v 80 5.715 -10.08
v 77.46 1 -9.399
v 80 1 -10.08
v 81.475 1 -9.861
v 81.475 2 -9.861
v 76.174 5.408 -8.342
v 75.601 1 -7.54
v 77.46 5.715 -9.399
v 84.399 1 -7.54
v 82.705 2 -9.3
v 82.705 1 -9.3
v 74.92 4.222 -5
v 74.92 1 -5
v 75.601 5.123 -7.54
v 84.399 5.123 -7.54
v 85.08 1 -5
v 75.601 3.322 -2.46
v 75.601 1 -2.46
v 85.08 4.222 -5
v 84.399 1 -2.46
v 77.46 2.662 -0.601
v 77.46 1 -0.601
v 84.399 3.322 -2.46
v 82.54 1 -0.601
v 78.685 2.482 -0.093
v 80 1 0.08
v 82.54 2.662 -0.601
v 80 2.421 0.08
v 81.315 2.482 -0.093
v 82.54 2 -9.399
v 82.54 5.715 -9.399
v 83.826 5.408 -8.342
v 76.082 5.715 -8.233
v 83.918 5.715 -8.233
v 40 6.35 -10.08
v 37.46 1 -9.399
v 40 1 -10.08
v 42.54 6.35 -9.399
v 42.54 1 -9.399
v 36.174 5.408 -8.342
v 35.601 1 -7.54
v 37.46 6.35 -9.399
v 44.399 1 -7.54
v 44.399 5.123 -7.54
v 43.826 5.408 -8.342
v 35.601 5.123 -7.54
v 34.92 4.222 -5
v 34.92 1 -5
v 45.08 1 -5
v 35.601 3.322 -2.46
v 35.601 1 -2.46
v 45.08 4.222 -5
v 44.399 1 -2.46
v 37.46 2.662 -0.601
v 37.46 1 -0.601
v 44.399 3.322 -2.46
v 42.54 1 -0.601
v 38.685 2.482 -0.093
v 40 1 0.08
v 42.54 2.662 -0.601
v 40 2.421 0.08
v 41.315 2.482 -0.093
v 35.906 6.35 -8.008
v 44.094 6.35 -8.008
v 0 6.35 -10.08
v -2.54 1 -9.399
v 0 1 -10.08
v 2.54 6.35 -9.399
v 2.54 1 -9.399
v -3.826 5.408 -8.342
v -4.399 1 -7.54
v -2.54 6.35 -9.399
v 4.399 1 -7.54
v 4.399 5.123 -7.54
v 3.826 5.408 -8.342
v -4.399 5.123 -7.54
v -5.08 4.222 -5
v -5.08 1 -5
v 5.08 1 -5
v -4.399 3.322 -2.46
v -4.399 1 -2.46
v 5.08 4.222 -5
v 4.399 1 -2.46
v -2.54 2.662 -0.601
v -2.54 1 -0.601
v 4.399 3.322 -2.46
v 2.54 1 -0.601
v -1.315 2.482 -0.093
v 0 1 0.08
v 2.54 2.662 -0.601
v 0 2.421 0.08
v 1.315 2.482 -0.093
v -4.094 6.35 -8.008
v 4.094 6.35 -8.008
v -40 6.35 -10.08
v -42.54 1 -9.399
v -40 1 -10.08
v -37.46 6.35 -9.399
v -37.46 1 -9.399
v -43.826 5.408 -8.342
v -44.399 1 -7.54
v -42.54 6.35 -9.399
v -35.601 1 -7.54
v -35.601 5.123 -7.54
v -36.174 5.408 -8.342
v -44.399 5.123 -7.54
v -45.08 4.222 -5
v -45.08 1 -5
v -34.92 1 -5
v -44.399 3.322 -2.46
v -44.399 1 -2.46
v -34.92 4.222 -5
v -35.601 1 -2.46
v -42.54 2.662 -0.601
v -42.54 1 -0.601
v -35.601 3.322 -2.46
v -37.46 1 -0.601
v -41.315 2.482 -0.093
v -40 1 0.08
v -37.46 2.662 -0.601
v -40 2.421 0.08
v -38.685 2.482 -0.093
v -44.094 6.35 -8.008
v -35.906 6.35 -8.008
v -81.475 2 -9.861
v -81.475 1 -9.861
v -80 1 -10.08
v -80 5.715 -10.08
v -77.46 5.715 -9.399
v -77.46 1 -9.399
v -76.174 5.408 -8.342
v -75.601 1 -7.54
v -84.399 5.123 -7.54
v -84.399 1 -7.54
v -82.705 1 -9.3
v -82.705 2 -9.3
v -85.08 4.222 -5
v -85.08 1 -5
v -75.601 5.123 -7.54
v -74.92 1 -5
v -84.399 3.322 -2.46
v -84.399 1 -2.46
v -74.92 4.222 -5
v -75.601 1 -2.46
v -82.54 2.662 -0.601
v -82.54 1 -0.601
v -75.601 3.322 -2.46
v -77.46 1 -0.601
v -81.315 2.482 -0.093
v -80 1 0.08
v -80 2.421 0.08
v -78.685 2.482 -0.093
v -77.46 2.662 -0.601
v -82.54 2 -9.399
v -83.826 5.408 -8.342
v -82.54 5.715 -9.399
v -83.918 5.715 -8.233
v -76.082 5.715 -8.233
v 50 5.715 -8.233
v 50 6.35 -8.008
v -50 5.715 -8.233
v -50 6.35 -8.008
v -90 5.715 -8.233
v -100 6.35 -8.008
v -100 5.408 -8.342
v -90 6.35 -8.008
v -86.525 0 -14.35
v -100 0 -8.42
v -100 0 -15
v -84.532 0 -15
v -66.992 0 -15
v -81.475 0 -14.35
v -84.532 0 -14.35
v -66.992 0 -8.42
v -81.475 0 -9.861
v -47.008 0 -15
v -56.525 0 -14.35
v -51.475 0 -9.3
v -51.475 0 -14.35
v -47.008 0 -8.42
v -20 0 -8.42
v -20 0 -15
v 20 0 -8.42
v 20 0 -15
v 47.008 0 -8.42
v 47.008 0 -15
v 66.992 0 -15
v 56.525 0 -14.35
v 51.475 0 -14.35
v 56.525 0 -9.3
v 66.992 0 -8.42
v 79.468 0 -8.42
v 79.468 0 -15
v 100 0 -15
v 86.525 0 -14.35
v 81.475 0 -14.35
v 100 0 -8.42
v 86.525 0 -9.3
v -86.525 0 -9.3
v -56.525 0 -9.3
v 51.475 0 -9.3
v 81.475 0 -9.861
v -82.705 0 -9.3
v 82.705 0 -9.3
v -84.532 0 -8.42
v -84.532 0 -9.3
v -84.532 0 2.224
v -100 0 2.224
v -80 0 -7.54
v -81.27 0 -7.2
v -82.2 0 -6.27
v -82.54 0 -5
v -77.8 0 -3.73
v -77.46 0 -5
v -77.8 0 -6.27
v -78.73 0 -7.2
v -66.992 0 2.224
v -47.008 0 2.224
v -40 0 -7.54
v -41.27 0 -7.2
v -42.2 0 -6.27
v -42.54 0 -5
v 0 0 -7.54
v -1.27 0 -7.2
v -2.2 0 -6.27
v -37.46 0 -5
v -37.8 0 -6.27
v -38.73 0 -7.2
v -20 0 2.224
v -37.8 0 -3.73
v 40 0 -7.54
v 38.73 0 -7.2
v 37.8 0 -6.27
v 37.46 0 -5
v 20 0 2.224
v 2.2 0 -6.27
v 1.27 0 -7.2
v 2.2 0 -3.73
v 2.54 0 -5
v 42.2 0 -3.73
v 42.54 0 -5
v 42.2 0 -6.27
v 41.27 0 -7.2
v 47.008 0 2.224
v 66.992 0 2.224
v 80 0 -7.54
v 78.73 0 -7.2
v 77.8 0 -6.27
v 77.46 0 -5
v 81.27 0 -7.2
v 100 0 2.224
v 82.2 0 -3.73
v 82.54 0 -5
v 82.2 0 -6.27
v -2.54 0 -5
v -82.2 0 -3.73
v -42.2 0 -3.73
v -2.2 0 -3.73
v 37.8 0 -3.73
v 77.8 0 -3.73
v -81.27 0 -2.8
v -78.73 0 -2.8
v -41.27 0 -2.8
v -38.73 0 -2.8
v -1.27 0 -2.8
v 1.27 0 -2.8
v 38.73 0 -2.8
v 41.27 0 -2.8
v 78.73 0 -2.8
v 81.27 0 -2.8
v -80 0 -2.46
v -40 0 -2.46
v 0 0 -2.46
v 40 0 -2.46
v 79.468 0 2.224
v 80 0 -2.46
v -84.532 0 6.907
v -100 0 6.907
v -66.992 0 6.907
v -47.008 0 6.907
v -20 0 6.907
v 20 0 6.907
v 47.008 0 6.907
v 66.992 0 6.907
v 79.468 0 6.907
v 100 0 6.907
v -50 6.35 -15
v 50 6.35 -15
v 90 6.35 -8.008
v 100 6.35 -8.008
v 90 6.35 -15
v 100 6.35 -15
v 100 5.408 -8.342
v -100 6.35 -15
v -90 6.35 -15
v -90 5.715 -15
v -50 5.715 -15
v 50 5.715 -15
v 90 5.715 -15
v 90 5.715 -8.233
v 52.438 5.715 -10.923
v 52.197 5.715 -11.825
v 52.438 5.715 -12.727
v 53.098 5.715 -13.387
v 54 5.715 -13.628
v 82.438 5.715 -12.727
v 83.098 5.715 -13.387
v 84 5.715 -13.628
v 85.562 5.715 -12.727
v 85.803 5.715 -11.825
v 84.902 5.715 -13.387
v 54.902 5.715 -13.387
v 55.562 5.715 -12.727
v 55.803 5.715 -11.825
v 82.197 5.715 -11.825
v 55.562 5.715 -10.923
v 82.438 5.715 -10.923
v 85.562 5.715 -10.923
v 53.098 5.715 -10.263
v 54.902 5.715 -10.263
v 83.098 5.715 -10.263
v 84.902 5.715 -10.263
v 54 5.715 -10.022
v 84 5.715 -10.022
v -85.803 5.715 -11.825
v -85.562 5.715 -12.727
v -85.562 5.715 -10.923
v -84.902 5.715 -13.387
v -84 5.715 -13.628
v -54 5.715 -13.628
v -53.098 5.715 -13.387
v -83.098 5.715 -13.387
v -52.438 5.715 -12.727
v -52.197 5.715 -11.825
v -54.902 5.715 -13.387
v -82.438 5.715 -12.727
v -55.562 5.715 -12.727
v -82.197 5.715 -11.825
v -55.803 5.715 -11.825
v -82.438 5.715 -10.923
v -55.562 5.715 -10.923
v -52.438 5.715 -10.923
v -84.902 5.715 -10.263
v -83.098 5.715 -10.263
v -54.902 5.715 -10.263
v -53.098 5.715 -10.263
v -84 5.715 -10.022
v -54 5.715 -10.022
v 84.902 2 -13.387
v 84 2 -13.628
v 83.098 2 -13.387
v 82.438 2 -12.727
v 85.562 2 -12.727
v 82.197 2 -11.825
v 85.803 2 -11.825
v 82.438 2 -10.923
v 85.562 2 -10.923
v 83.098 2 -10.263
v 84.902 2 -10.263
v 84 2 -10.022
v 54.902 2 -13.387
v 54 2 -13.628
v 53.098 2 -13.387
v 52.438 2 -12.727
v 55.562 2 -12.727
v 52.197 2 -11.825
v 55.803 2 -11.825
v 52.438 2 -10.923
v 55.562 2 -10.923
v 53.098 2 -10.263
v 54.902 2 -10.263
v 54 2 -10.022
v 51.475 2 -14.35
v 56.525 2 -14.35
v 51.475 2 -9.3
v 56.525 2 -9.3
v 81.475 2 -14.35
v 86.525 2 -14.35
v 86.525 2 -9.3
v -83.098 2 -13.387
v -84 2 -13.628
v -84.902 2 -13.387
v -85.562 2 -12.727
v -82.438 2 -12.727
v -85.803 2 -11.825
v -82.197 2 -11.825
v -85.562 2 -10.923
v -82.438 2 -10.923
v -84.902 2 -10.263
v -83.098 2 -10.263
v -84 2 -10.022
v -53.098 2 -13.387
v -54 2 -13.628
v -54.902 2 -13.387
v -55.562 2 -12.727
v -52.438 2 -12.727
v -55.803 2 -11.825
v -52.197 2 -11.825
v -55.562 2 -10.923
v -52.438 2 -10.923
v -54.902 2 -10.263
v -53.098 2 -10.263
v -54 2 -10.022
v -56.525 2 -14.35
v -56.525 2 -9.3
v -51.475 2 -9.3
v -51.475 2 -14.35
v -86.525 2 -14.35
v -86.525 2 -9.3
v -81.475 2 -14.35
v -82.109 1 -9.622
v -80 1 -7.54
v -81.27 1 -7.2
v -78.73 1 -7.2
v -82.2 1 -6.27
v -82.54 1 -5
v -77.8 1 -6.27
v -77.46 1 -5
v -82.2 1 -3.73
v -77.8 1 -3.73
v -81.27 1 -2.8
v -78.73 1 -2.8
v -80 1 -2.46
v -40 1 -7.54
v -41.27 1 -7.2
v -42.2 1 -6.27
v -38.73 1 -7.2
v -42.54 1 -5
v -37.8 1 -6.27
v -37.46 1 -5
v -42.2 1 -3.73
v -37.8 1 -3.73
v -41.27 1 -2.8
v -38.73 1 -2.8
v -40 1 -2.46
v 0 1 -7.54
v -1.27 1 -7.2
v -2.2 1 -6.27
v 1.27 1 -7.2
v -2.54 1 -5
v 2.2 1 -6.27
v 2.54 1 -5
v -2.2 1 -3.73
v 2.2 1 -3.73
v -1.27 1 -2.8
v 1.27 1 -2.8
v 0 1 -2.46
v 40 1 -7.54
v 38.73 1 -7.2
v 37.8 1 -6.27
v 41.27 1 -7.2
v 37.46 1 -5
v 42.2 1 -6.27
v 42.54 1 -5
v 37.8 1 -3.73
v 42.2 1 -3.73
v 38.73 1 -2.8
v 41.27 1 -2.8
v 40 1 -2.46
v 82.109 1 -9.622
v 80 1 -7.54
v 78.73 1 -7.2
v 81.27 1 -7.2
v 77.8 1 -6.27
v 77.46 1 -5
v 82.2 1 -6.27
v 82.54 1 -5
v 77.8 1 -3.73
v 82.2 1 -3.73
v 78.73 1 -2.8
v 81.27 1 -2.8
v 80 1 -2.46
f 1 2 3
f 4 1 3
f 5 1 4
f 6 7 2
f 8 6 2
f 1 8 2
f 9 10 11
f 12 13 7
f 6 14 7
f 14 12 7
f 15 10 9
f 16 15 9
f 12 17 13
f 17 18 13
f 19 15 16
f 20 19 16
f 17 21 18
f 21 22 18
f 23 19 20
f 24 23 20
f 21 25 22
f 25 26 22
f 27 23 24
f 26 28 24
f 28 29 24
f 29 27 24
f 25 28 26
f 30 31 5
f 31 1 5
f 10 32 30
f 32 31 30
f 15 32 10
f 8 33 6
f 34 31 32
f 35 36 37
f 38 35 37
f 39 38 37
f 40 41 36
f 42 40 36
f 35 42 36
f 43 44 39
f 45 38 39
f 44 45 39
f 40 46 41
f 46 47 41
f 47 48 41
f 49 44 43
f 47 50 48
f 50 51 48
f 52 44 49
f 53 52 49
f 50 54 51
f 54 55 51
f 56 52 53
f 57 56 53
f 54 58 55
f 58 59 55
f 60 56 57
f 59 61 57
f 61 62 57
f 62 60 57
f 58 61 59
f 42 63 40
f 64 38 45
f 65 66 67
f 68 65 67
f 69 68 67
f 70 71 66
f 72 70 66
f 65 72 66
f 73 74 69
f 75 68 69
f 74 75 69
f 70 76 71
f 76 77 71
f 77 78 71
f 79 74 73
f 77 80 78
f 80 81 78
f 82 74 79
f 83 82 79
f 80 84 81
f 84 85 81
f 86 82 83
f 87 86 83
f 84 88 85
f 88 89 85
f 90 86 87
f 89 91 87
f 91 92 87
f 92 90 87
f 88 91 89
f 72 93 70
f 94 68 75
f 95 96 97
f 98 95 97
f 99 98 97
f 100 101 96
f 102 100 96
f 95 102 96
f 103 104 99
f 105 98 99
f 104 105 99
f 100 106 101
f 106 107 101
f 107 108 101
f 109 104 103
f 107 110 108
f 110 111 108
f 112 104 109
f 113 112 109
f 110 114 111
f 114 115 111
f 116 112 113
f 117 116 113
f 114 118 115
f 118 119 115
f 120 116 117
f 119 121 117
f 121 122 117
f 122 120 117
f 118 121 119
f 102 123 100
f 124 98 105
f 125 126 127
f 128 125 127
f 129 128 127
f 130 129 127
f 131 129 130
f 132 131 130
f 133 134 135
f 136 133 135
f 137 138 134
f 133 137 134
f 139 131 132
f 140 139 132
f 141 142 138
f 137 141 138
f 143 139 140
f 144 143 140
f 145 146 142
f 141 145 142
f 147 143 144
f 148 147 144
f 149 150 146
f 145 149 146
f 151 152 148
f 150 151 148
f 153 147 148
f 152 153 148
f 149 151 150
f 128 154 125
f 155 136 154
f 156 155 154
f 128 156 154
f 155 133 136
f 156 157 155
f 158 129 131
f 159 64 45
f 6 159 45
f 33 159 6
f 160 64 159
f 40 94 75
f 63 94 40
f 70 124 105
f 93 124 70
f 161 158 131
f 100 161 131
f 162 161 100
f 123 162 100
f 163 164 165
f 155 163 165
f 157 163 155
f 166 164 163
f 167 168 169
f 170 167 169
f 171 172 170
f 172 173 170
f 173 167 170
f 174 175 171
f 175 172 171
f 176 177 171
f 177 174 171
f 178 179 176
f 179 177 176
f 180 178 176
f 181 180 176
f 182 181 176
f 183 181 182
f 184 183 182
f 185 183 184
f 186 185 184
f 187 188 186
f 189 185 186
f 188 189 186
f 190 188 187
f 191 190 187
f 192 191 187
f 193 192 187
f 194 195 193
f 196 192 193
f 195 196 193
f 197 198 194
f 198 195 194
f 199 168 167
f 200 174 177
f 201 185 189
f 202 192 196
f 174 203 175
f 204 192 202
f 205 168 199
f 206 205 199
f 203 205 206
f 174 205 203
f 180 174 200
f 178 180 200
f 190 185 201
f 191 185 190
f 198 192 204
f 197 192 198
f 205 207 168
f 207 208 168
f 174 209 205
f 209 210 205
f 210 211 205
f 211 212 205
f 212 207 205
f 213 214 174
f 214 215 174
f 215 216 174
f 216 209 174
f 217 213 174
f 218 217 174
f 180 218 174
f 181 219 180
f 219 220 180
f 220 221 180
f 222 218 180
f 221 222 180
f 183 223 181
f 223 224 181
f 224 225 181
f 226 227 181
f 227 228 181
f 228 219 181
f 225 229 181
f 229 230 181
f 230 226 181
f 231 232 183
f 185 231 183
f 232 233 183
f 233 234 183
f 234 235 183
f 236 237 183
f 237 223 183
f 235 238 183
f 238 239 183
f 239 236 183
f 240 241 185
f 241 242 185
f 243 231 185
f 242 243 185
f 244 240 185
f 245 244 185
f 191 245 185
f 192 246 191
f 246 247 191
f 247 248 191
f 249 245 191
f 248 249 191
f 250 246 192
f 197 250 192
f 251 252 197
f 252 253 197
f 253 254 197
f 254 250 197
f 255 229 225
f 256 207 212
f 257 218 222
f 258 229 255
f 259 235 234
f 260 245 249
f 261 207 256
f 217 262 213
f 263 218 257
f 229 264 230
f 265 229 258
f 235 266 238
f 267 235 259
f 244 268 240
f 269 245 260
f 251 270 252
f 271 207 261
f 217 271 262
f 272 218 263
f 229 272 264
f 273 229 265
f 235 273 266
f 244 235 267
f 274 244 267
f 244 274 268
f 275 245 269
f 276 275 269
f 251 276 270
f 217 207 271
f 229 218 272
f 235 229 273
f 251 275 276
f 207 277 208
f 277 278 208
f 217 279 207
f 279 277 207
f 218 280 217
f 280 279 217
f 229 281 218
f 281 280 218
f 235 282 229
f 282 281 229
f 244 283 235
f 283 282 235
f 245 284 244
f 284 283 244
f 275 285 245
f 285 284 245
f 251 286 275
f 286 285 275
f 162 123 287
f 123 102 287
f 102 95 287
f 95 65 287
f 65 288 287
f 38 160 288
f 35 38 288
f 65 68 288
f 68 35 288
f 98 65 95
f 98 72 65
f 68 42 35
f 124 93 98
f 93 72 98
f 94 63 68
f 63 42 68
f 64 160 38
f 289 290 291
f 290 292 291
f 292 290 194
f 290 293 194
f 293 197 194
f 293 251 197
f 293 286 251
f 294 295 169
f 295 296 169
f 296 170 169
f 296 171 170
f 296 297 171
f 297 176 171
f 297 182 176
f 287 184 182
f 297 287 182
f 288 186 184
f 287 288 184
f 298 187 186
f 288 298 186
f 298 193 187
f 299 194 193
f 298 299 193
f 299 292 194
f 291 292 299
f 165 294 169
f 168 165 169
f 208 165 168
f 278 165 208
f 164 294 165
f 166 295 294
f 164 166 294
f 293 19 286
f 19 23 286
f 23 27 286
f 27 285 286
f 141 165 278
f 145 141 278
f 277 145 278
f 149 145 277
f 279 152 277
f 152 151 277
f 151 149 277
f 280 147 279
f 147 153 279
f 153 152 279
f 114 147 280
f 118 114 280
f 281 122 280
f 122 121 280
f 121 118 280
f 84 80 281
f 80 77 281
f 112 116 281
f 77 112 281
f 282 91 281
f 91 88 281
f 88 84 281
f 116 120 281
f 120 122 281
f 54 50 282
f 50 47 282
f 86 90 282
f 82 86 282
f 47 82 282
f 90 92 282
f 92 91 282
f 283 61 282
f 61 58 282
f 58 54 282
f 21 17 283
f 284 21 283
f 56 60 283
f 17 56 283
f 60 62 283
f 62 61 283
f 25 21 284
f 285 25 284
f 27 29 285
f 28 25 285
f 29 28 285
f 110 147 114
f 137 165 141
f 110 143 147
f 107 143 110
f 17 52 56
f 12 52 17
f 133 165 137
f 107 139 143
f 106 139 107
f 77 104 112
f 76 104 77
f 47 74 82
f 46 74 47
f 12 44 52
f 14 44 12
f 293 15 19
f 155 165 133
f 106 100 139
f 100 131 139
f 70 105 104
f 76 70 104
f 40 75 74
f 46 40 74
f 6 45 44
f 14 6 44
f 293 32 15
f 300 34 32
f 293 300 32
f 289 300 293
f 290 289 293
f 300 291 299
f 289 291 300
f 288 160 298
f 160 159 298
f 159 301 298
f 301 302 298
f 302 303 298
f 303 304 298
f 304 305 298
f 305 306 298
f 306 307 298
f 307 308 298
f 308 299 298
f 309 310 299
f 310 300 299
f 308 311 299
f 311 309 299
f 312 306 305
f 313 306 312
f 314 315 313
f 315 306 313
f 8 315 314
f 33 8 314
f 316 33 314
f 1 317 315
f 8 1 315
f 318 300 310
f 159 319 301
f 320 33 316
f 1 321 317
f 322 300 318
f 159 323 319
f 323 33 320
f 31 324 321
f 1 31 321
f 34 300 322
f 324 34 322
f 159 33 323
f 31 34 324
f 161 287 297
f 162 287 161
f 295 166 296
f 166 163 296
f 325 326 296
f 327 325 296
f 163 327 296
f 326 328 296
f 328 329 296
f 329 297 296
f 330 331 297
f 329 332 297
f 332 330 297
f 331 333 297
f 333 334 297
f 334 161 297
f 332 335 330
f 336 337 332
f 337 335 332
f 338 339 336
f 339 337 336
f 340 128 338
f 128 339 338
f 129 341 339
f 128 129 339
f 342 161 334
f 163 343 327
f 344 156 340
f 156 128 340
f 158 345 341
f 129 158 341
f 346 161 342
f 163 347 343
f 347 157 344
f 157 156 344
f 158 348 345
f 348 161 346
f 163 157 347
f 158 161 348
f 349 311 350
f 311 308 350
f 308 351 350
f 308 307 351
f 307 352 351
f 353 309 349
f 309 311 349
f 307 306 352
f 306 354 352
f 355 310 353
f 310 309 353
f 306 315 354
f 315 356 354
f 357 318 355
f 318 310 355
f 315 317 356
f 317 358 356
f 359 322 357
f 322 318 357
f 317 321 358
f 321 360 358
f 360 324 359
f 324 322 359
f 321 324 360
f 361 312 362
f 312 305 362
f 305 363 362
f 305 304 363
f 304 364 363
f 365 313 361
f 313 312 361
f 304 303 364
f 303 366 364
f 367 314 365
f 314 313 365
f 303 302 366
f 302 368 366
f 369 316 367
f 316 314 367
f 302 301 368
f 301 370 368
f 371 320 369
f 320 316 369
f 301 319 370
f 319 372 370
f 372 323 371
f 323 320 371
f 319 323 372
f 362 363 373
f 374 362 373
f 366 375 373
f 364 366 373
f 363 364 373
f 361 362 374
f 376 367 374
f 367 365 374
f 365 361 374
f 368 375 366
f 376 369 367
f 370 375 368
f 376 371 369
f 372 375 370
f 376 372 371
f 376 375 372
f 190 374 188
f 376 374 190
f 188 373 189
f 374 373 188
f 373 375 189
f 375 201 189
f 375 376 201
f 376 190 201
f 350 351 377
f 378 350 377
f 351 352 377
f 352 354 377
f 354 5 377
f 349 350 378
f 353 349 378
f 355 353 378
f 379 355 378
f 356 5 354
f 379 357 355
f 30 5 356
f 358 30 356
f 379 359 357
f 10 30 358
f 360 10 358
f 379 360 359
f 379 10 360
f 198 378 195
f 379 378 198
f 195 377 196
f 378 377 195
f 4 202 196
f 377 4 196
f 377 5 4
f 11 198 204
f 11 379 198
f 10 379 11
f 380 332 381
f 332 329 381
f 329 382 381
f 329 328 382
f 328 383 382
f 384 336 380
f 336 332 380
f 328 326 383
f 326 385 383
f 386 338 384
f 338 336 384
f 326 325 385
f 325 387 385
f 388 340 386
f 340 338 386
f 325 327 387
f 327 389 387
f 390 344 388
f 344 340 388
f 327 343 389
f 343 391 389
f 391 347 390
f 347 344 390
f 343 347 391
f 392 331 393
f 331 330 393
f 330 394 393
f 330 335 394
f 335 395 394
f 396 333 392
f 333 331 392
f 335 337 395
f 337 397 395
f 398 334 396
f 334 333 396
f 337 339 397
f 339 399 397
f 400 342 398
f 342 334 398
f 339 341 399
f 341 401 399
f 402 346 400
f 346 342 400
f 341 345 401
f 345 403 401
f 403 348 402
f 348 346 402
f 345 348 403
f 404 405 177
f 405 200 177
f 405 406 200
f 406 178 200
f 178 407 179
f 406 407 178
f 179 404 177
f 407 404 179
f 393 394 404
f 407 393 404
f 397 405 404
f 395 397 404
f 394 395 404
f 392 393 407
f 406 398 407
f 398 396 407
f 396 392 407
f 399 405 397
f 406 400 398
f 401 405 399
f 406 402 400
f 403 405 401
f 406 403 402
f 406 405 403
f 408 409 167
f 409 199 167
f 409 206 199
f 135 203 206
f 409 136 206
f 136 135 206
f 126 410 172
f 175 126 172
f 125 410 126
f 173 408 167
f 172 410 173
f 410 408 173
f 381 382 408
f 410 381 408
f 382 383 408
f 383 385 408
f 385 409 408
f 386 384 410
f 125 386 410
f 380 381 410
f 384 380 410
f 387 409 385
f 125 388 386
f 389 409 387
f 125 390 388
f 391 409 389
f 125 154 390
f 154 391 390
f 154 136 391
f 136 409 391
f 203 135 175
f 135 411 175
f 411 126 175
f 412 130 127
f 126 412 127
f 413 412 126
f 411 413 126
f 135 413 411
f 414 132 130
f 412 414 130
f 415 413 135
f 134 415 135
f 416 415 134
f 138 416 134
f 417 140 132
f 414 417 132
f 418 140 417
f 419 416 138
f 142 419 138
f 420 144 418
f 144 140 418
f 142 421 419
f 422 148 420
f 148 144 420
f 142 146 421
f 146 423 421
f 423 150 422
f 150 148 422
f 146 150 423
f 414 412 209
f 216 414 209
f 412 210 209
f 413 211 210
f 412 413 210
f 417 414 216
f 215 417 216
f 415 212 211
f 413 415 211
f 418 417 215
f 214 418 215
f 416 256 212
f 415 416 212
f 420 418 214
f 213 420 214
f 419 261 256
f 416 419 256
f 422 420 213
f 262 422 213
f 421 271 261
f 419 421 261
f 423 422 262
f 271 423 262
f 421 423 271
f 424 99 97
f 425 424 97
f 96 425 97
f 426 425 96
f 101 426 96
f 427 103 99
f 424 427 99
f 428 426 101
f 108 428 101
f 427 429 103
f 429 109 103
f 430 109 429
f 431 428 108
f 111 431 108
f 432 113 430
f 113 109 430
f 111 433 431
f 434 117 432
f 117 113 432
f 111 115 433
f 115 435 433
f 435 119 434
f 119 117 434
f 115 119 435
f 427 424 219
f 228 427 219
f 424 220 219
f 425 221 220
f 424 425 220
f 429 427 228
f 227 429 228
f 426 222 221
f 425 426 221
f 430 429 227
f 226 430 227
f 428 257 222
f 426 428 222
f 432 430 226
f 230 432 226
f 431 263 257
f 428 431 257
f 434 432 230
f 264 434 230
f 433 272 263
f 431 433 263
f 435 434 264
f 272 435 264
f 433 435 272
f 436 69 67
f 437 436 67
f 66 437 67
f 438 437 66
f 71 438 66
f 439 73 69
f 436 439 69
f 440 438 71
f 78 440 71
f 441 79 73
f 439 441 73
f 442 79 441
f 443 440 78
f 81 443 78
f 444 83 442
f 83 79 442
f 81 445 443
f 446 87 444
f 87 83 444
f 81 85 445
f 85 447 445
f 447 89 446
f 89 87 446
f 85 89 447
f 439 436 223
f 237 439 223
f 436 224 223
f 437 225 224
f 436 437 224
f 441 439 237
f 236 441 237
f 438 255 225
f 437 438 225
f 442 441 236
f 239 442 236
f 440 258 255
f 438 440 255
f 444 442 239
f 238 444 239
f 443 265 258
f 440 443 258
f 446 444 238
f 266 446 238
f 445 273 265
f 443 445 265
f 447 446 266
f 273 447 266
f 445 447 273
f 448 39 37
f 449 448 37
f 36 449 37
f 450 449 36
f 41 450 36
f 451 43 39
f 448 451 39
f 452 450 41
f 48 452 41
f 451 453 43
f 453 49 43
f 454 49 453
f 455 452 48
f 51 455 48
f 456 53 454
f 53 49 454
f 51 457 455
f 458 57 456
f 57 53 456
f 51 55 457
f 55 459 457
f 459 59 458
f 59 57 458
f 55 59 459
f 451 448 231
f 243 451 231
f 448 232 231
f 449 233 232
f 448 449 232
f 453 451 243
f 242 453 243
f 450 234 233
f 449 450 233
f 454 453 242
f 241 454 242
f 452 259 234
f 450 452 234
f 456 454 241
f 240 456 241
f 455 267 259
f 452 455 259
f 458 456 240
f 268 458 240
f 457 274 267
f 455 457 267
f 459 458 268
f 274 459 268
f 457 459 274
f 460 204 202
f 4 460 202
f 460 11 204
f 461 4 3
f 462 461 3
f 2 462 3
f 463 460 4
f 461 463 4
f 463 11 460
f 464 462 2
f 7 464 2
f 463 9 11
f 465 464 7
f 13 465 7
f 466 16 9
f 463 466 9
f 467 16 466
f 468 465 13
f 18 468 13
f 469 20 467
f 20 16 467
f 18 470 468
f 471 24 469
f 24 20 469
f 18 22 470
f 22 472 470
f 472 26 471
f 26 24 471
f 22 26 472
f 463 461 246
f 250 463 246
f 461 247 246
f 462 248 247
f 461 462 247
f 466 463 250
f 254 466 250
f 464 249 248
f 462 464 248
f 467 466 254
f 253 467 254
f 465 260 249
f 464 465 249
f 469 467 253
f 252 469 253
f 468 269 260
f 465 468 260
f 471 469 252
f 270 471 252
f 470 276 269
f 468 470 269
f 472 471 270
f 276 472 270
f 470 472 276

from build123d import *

# Parameters (mm, degrees)
SKETCH1_W            = 200
SKETCH1_H            = 30
BASE_DEPTH           = 6.35
WEDGECUT_REACH       = 202.662
SKETCH3_W            = 40
SKETCH3_H            = 8
HINGE_CUTOUT_DEPTH   = 0.635
HINGE_HOLE_CUT_REACH = 103.28
SKETCH4_R            = 1.8034
SKETCH5_W            = 5.05
SKETCH5_H            = 5.05
HINGE_NUT_CUT_DEPTH  = 2
SKETCH6_R            = 5.08
CUT_EXTRUDE1_DEPTH   = 102.317927831
SKETCH7_R            = 5.08
SKETCH7_R_2          = 2.54
BOSS_EXTRUDE1_DEPTH  = 1


with BuildPart() as part:
    # Sketch1 → Base (new body)
    with BuildSketch(Plane(origin=(0, 0, 0), x_dir=(1, 0, 0), z_dir=(0, 1, 0))):
        Rectangle(SKETCH1_W, SKETCH1_H)
    extrude(amount=BASE_DEPTH)

    # Sketch2 → WedgeCut (cut, up to next)
    with BuildSketch(Plane(origin=(100, 0, 0), x_dir=(0, 0, -1), z_dir=(1, 0, 0)), mode=Mode.PRIVATE) as wedgecut_sk1:
        Polygon((-15, 0), (-6.907470508, 0), (8.342084542, 5.407501552), (8.007874016, 6.35), (-15, 6.35), align=None)
    wedgecut_tool1 = extrude(wedgecut_sk1.sketch, amount=-WEDGECUT_REACH, mode=Mode.PRIVATE) & part.part
    add(wedgecut_tool1.solids().sort_by_distance((100, 3.70048, 5.888491))[0], mode=Mode.SUBTRACT)

    # Sketch3 → Hinge Cutout (cut)
    with BuildSketch(Plane(origin=(0, 6.35, 0), x_dir=(1, 0, 0), z_dir=(0, 1, 0))):
        with Locations((-69.999999934, 11)):
            Rectangle(SKETCH3_W, SKETCH3_H)
        with Locations((70, 11)):
            Rectangle(SKETCH3_W, SKETCH3_H)
    extrude(amount=-HINGE_CUTOUT_DEPTH, mode=Mode.SUBTRACT)

    # Sketch4 → Hinge Hole Cut (cut, up to next)
    with BuildSketch(Plane(origin=(0, 5.715, 0), x_dir=(1, 0, 0), z_dir=(0, 1, 0)), mode=Mode.PRIVATE) as hinge_hole_cut_sk1:
        with Locations(Location((54, 11.825, 0), (0, 0, 270))):
            Circle(SKETCH4_R)
    hinge_hole_cut_tool1 = extrude(hinge_hole_cut_sk1.sketch, amount=-HINGE_HOLE_CUT_REACH, mode=Mode.PRIVATE) & part.part
    # Sketch4 → Hinge Hole Cut (cut, up to next)
    with BuildSketch(Plane(origin=(0, 5.715, 0), x_dir=(1, 0, 0), z_dir=(0, 1, 0)), mode=Mode.PRIVATE) as hinge_hole_cut_sk2:
        with Locations(Location((84, 11.825, 0), (0, 0, 270))):
            Circle(SKETCH4_R)
    hinge_hole_cut_tool2 = extrude(hinge_hole_cut_sk2.sketch, amount=-HINGE_HOLE_CUT_REACH, mode=Mode.PRIVATE) & part.part
    hinge_hole_cut_1 = hinge_hole_cut_tool1.solids().sort_by_distance((54, 5.715, -11.825))[0]
    add(hinge_hole_cut_1, mode=Mode.SUBTRACT)
    hinge_hole_cut_2 = hinge_hole_cut_tool2.solids().sort_by_distance((84, 5.715, -11.825))[0]
    add(hinge_hole_cut_2, mode=Mode.SUBTRACT)
    hinge_hole_cut = hinge_hole_cut_1 + hinge_hole_cut_2  # Hinge Hole Cut as one shape, for the pattern or mirror that repeats it

    # Sketch5 → Hinge Nut Cut (cut)
    with BuildSketch(Plane.XZ):
        with Locations((54, -11.825)):
            Rectangle(SKETCH5_W, SKETCH5_H)
        with Locations((84, -11.825)):
            Rectangle(SKETCH5_W, SKETCH5_H)
    hinge_nut_cut = extrude(amount=-HINGE_NUT_CUT_DEPTH, mode=Mode.SUBTRACT)

    # Hinge Hole Mirror: Hinge Hole Cut, Hinge Nut Cut across plane
    add(hinge_hole_cut.mirror(Plane(origin=(0, 0, 0), x_dir=(0, 0, 1), z_dir=(1, 0, 0))), mode=Mode.SUBTRACT)
    add(hinge_nut_cut.mirror(Plane(origin=(0, 0, 0), x_dir=(0, 0, 1), z_dir=(1, 0, 0))), mode=Mode.SUBTRACT)

    # Sketch6 → Cut-Extrude1 (cut, through all)
    with BuildSketch(Plane(origin=(0, 0, 0), x_dir=(-1, 0, 0), z_dir=(0, -1, 0))):
        with Locations(Location((-80, 5, 0), (0, 0, 106.879170472))):
            Circle(SKETCH6_R)
        with Locations(Location((-40, 5, 0), (0, 0, 90))):
            Circle(SKETCH6_R)
        with Locations(Location((0, 5, 0), (0, 0, 90))):
            Circle(SKETCH6_R)
        with Locations(Location((40, 5, 0), (0, 0, 90))):
            Circle(SKETCH6_R)
        with Locations(Location((80, 5, 0), (0, 0, 73.120829528))):
            Circle(SKETCH6_R)
    extrude(amount=-CUT_EXTRUDE1_DEPTH, mode=Mode.SUBTRACT)

    # Sketch7 → Boss-Extrude1 (add)
    # profile 1 of 5: a face of its own
    with BuildSketch(Plane.XZ):
        with Locations(Location((-80, -5, 0), (0, 0, 253.120829528))):
            Circle(SKETCH7_R)
        with Locations(Location((-80, -5, 0), (0, 0, 270))):
            Circle(SKETCH7_R_2, mode=Mode.SUBTRACT)
    # profile 2 of 5: a face of its own
    with BuildSketch(Plane.XZ):
        with Locations(Location((-40, -5, 0), (0, 0, 270))):
            Circle(SKETCH7_R)
        with Locations(Location((-40, -5, 0), (0, 0, 270))):
            Circle(SKETCH7_R_2, mode=Mode.SUBTRACT)
    # profile 3 of 5: a face of its own
    with BuildSketch(Plane.XZ):
        with Locations(Location((0, -5, 0), (0, 0, 270))):
            Circle(SKETCH7_R)
        with Locations(Location((0, -5, 0), (0, 0, 270))):
            Circle(SKETCH7_R_2, mode=Mode.SUBTRACT)
    # profile 4 of 5: a face of its own
    with BuildSketch(Plane.XZ):
        with Locations(Location((40, -5, 0), (0, 0, 270))):
            Circle(SKETCH7_R)
        with Locations(Location((40, -5, 0), (0, 0, 270))):
            Circle(SKETCH7_R_2, mode=Mode.SUBTRACT)
    # profile 5 of 5: a face of its own
    with BuildSketch(Plane.XZ):
        with Locations(Location((80, -5, 0), (0, 0, 286.879170472))):
            Circle(SKETCH7_R)
        with Locations(Location((80, -5, 0), (0, 0, 270))):
            Circle(SKETCH7_R_2, mode=Mode.SUBTRACT)
    extrude(amount=-BOSS_EXTRUDE1_DEPTH)


solid = part.part
